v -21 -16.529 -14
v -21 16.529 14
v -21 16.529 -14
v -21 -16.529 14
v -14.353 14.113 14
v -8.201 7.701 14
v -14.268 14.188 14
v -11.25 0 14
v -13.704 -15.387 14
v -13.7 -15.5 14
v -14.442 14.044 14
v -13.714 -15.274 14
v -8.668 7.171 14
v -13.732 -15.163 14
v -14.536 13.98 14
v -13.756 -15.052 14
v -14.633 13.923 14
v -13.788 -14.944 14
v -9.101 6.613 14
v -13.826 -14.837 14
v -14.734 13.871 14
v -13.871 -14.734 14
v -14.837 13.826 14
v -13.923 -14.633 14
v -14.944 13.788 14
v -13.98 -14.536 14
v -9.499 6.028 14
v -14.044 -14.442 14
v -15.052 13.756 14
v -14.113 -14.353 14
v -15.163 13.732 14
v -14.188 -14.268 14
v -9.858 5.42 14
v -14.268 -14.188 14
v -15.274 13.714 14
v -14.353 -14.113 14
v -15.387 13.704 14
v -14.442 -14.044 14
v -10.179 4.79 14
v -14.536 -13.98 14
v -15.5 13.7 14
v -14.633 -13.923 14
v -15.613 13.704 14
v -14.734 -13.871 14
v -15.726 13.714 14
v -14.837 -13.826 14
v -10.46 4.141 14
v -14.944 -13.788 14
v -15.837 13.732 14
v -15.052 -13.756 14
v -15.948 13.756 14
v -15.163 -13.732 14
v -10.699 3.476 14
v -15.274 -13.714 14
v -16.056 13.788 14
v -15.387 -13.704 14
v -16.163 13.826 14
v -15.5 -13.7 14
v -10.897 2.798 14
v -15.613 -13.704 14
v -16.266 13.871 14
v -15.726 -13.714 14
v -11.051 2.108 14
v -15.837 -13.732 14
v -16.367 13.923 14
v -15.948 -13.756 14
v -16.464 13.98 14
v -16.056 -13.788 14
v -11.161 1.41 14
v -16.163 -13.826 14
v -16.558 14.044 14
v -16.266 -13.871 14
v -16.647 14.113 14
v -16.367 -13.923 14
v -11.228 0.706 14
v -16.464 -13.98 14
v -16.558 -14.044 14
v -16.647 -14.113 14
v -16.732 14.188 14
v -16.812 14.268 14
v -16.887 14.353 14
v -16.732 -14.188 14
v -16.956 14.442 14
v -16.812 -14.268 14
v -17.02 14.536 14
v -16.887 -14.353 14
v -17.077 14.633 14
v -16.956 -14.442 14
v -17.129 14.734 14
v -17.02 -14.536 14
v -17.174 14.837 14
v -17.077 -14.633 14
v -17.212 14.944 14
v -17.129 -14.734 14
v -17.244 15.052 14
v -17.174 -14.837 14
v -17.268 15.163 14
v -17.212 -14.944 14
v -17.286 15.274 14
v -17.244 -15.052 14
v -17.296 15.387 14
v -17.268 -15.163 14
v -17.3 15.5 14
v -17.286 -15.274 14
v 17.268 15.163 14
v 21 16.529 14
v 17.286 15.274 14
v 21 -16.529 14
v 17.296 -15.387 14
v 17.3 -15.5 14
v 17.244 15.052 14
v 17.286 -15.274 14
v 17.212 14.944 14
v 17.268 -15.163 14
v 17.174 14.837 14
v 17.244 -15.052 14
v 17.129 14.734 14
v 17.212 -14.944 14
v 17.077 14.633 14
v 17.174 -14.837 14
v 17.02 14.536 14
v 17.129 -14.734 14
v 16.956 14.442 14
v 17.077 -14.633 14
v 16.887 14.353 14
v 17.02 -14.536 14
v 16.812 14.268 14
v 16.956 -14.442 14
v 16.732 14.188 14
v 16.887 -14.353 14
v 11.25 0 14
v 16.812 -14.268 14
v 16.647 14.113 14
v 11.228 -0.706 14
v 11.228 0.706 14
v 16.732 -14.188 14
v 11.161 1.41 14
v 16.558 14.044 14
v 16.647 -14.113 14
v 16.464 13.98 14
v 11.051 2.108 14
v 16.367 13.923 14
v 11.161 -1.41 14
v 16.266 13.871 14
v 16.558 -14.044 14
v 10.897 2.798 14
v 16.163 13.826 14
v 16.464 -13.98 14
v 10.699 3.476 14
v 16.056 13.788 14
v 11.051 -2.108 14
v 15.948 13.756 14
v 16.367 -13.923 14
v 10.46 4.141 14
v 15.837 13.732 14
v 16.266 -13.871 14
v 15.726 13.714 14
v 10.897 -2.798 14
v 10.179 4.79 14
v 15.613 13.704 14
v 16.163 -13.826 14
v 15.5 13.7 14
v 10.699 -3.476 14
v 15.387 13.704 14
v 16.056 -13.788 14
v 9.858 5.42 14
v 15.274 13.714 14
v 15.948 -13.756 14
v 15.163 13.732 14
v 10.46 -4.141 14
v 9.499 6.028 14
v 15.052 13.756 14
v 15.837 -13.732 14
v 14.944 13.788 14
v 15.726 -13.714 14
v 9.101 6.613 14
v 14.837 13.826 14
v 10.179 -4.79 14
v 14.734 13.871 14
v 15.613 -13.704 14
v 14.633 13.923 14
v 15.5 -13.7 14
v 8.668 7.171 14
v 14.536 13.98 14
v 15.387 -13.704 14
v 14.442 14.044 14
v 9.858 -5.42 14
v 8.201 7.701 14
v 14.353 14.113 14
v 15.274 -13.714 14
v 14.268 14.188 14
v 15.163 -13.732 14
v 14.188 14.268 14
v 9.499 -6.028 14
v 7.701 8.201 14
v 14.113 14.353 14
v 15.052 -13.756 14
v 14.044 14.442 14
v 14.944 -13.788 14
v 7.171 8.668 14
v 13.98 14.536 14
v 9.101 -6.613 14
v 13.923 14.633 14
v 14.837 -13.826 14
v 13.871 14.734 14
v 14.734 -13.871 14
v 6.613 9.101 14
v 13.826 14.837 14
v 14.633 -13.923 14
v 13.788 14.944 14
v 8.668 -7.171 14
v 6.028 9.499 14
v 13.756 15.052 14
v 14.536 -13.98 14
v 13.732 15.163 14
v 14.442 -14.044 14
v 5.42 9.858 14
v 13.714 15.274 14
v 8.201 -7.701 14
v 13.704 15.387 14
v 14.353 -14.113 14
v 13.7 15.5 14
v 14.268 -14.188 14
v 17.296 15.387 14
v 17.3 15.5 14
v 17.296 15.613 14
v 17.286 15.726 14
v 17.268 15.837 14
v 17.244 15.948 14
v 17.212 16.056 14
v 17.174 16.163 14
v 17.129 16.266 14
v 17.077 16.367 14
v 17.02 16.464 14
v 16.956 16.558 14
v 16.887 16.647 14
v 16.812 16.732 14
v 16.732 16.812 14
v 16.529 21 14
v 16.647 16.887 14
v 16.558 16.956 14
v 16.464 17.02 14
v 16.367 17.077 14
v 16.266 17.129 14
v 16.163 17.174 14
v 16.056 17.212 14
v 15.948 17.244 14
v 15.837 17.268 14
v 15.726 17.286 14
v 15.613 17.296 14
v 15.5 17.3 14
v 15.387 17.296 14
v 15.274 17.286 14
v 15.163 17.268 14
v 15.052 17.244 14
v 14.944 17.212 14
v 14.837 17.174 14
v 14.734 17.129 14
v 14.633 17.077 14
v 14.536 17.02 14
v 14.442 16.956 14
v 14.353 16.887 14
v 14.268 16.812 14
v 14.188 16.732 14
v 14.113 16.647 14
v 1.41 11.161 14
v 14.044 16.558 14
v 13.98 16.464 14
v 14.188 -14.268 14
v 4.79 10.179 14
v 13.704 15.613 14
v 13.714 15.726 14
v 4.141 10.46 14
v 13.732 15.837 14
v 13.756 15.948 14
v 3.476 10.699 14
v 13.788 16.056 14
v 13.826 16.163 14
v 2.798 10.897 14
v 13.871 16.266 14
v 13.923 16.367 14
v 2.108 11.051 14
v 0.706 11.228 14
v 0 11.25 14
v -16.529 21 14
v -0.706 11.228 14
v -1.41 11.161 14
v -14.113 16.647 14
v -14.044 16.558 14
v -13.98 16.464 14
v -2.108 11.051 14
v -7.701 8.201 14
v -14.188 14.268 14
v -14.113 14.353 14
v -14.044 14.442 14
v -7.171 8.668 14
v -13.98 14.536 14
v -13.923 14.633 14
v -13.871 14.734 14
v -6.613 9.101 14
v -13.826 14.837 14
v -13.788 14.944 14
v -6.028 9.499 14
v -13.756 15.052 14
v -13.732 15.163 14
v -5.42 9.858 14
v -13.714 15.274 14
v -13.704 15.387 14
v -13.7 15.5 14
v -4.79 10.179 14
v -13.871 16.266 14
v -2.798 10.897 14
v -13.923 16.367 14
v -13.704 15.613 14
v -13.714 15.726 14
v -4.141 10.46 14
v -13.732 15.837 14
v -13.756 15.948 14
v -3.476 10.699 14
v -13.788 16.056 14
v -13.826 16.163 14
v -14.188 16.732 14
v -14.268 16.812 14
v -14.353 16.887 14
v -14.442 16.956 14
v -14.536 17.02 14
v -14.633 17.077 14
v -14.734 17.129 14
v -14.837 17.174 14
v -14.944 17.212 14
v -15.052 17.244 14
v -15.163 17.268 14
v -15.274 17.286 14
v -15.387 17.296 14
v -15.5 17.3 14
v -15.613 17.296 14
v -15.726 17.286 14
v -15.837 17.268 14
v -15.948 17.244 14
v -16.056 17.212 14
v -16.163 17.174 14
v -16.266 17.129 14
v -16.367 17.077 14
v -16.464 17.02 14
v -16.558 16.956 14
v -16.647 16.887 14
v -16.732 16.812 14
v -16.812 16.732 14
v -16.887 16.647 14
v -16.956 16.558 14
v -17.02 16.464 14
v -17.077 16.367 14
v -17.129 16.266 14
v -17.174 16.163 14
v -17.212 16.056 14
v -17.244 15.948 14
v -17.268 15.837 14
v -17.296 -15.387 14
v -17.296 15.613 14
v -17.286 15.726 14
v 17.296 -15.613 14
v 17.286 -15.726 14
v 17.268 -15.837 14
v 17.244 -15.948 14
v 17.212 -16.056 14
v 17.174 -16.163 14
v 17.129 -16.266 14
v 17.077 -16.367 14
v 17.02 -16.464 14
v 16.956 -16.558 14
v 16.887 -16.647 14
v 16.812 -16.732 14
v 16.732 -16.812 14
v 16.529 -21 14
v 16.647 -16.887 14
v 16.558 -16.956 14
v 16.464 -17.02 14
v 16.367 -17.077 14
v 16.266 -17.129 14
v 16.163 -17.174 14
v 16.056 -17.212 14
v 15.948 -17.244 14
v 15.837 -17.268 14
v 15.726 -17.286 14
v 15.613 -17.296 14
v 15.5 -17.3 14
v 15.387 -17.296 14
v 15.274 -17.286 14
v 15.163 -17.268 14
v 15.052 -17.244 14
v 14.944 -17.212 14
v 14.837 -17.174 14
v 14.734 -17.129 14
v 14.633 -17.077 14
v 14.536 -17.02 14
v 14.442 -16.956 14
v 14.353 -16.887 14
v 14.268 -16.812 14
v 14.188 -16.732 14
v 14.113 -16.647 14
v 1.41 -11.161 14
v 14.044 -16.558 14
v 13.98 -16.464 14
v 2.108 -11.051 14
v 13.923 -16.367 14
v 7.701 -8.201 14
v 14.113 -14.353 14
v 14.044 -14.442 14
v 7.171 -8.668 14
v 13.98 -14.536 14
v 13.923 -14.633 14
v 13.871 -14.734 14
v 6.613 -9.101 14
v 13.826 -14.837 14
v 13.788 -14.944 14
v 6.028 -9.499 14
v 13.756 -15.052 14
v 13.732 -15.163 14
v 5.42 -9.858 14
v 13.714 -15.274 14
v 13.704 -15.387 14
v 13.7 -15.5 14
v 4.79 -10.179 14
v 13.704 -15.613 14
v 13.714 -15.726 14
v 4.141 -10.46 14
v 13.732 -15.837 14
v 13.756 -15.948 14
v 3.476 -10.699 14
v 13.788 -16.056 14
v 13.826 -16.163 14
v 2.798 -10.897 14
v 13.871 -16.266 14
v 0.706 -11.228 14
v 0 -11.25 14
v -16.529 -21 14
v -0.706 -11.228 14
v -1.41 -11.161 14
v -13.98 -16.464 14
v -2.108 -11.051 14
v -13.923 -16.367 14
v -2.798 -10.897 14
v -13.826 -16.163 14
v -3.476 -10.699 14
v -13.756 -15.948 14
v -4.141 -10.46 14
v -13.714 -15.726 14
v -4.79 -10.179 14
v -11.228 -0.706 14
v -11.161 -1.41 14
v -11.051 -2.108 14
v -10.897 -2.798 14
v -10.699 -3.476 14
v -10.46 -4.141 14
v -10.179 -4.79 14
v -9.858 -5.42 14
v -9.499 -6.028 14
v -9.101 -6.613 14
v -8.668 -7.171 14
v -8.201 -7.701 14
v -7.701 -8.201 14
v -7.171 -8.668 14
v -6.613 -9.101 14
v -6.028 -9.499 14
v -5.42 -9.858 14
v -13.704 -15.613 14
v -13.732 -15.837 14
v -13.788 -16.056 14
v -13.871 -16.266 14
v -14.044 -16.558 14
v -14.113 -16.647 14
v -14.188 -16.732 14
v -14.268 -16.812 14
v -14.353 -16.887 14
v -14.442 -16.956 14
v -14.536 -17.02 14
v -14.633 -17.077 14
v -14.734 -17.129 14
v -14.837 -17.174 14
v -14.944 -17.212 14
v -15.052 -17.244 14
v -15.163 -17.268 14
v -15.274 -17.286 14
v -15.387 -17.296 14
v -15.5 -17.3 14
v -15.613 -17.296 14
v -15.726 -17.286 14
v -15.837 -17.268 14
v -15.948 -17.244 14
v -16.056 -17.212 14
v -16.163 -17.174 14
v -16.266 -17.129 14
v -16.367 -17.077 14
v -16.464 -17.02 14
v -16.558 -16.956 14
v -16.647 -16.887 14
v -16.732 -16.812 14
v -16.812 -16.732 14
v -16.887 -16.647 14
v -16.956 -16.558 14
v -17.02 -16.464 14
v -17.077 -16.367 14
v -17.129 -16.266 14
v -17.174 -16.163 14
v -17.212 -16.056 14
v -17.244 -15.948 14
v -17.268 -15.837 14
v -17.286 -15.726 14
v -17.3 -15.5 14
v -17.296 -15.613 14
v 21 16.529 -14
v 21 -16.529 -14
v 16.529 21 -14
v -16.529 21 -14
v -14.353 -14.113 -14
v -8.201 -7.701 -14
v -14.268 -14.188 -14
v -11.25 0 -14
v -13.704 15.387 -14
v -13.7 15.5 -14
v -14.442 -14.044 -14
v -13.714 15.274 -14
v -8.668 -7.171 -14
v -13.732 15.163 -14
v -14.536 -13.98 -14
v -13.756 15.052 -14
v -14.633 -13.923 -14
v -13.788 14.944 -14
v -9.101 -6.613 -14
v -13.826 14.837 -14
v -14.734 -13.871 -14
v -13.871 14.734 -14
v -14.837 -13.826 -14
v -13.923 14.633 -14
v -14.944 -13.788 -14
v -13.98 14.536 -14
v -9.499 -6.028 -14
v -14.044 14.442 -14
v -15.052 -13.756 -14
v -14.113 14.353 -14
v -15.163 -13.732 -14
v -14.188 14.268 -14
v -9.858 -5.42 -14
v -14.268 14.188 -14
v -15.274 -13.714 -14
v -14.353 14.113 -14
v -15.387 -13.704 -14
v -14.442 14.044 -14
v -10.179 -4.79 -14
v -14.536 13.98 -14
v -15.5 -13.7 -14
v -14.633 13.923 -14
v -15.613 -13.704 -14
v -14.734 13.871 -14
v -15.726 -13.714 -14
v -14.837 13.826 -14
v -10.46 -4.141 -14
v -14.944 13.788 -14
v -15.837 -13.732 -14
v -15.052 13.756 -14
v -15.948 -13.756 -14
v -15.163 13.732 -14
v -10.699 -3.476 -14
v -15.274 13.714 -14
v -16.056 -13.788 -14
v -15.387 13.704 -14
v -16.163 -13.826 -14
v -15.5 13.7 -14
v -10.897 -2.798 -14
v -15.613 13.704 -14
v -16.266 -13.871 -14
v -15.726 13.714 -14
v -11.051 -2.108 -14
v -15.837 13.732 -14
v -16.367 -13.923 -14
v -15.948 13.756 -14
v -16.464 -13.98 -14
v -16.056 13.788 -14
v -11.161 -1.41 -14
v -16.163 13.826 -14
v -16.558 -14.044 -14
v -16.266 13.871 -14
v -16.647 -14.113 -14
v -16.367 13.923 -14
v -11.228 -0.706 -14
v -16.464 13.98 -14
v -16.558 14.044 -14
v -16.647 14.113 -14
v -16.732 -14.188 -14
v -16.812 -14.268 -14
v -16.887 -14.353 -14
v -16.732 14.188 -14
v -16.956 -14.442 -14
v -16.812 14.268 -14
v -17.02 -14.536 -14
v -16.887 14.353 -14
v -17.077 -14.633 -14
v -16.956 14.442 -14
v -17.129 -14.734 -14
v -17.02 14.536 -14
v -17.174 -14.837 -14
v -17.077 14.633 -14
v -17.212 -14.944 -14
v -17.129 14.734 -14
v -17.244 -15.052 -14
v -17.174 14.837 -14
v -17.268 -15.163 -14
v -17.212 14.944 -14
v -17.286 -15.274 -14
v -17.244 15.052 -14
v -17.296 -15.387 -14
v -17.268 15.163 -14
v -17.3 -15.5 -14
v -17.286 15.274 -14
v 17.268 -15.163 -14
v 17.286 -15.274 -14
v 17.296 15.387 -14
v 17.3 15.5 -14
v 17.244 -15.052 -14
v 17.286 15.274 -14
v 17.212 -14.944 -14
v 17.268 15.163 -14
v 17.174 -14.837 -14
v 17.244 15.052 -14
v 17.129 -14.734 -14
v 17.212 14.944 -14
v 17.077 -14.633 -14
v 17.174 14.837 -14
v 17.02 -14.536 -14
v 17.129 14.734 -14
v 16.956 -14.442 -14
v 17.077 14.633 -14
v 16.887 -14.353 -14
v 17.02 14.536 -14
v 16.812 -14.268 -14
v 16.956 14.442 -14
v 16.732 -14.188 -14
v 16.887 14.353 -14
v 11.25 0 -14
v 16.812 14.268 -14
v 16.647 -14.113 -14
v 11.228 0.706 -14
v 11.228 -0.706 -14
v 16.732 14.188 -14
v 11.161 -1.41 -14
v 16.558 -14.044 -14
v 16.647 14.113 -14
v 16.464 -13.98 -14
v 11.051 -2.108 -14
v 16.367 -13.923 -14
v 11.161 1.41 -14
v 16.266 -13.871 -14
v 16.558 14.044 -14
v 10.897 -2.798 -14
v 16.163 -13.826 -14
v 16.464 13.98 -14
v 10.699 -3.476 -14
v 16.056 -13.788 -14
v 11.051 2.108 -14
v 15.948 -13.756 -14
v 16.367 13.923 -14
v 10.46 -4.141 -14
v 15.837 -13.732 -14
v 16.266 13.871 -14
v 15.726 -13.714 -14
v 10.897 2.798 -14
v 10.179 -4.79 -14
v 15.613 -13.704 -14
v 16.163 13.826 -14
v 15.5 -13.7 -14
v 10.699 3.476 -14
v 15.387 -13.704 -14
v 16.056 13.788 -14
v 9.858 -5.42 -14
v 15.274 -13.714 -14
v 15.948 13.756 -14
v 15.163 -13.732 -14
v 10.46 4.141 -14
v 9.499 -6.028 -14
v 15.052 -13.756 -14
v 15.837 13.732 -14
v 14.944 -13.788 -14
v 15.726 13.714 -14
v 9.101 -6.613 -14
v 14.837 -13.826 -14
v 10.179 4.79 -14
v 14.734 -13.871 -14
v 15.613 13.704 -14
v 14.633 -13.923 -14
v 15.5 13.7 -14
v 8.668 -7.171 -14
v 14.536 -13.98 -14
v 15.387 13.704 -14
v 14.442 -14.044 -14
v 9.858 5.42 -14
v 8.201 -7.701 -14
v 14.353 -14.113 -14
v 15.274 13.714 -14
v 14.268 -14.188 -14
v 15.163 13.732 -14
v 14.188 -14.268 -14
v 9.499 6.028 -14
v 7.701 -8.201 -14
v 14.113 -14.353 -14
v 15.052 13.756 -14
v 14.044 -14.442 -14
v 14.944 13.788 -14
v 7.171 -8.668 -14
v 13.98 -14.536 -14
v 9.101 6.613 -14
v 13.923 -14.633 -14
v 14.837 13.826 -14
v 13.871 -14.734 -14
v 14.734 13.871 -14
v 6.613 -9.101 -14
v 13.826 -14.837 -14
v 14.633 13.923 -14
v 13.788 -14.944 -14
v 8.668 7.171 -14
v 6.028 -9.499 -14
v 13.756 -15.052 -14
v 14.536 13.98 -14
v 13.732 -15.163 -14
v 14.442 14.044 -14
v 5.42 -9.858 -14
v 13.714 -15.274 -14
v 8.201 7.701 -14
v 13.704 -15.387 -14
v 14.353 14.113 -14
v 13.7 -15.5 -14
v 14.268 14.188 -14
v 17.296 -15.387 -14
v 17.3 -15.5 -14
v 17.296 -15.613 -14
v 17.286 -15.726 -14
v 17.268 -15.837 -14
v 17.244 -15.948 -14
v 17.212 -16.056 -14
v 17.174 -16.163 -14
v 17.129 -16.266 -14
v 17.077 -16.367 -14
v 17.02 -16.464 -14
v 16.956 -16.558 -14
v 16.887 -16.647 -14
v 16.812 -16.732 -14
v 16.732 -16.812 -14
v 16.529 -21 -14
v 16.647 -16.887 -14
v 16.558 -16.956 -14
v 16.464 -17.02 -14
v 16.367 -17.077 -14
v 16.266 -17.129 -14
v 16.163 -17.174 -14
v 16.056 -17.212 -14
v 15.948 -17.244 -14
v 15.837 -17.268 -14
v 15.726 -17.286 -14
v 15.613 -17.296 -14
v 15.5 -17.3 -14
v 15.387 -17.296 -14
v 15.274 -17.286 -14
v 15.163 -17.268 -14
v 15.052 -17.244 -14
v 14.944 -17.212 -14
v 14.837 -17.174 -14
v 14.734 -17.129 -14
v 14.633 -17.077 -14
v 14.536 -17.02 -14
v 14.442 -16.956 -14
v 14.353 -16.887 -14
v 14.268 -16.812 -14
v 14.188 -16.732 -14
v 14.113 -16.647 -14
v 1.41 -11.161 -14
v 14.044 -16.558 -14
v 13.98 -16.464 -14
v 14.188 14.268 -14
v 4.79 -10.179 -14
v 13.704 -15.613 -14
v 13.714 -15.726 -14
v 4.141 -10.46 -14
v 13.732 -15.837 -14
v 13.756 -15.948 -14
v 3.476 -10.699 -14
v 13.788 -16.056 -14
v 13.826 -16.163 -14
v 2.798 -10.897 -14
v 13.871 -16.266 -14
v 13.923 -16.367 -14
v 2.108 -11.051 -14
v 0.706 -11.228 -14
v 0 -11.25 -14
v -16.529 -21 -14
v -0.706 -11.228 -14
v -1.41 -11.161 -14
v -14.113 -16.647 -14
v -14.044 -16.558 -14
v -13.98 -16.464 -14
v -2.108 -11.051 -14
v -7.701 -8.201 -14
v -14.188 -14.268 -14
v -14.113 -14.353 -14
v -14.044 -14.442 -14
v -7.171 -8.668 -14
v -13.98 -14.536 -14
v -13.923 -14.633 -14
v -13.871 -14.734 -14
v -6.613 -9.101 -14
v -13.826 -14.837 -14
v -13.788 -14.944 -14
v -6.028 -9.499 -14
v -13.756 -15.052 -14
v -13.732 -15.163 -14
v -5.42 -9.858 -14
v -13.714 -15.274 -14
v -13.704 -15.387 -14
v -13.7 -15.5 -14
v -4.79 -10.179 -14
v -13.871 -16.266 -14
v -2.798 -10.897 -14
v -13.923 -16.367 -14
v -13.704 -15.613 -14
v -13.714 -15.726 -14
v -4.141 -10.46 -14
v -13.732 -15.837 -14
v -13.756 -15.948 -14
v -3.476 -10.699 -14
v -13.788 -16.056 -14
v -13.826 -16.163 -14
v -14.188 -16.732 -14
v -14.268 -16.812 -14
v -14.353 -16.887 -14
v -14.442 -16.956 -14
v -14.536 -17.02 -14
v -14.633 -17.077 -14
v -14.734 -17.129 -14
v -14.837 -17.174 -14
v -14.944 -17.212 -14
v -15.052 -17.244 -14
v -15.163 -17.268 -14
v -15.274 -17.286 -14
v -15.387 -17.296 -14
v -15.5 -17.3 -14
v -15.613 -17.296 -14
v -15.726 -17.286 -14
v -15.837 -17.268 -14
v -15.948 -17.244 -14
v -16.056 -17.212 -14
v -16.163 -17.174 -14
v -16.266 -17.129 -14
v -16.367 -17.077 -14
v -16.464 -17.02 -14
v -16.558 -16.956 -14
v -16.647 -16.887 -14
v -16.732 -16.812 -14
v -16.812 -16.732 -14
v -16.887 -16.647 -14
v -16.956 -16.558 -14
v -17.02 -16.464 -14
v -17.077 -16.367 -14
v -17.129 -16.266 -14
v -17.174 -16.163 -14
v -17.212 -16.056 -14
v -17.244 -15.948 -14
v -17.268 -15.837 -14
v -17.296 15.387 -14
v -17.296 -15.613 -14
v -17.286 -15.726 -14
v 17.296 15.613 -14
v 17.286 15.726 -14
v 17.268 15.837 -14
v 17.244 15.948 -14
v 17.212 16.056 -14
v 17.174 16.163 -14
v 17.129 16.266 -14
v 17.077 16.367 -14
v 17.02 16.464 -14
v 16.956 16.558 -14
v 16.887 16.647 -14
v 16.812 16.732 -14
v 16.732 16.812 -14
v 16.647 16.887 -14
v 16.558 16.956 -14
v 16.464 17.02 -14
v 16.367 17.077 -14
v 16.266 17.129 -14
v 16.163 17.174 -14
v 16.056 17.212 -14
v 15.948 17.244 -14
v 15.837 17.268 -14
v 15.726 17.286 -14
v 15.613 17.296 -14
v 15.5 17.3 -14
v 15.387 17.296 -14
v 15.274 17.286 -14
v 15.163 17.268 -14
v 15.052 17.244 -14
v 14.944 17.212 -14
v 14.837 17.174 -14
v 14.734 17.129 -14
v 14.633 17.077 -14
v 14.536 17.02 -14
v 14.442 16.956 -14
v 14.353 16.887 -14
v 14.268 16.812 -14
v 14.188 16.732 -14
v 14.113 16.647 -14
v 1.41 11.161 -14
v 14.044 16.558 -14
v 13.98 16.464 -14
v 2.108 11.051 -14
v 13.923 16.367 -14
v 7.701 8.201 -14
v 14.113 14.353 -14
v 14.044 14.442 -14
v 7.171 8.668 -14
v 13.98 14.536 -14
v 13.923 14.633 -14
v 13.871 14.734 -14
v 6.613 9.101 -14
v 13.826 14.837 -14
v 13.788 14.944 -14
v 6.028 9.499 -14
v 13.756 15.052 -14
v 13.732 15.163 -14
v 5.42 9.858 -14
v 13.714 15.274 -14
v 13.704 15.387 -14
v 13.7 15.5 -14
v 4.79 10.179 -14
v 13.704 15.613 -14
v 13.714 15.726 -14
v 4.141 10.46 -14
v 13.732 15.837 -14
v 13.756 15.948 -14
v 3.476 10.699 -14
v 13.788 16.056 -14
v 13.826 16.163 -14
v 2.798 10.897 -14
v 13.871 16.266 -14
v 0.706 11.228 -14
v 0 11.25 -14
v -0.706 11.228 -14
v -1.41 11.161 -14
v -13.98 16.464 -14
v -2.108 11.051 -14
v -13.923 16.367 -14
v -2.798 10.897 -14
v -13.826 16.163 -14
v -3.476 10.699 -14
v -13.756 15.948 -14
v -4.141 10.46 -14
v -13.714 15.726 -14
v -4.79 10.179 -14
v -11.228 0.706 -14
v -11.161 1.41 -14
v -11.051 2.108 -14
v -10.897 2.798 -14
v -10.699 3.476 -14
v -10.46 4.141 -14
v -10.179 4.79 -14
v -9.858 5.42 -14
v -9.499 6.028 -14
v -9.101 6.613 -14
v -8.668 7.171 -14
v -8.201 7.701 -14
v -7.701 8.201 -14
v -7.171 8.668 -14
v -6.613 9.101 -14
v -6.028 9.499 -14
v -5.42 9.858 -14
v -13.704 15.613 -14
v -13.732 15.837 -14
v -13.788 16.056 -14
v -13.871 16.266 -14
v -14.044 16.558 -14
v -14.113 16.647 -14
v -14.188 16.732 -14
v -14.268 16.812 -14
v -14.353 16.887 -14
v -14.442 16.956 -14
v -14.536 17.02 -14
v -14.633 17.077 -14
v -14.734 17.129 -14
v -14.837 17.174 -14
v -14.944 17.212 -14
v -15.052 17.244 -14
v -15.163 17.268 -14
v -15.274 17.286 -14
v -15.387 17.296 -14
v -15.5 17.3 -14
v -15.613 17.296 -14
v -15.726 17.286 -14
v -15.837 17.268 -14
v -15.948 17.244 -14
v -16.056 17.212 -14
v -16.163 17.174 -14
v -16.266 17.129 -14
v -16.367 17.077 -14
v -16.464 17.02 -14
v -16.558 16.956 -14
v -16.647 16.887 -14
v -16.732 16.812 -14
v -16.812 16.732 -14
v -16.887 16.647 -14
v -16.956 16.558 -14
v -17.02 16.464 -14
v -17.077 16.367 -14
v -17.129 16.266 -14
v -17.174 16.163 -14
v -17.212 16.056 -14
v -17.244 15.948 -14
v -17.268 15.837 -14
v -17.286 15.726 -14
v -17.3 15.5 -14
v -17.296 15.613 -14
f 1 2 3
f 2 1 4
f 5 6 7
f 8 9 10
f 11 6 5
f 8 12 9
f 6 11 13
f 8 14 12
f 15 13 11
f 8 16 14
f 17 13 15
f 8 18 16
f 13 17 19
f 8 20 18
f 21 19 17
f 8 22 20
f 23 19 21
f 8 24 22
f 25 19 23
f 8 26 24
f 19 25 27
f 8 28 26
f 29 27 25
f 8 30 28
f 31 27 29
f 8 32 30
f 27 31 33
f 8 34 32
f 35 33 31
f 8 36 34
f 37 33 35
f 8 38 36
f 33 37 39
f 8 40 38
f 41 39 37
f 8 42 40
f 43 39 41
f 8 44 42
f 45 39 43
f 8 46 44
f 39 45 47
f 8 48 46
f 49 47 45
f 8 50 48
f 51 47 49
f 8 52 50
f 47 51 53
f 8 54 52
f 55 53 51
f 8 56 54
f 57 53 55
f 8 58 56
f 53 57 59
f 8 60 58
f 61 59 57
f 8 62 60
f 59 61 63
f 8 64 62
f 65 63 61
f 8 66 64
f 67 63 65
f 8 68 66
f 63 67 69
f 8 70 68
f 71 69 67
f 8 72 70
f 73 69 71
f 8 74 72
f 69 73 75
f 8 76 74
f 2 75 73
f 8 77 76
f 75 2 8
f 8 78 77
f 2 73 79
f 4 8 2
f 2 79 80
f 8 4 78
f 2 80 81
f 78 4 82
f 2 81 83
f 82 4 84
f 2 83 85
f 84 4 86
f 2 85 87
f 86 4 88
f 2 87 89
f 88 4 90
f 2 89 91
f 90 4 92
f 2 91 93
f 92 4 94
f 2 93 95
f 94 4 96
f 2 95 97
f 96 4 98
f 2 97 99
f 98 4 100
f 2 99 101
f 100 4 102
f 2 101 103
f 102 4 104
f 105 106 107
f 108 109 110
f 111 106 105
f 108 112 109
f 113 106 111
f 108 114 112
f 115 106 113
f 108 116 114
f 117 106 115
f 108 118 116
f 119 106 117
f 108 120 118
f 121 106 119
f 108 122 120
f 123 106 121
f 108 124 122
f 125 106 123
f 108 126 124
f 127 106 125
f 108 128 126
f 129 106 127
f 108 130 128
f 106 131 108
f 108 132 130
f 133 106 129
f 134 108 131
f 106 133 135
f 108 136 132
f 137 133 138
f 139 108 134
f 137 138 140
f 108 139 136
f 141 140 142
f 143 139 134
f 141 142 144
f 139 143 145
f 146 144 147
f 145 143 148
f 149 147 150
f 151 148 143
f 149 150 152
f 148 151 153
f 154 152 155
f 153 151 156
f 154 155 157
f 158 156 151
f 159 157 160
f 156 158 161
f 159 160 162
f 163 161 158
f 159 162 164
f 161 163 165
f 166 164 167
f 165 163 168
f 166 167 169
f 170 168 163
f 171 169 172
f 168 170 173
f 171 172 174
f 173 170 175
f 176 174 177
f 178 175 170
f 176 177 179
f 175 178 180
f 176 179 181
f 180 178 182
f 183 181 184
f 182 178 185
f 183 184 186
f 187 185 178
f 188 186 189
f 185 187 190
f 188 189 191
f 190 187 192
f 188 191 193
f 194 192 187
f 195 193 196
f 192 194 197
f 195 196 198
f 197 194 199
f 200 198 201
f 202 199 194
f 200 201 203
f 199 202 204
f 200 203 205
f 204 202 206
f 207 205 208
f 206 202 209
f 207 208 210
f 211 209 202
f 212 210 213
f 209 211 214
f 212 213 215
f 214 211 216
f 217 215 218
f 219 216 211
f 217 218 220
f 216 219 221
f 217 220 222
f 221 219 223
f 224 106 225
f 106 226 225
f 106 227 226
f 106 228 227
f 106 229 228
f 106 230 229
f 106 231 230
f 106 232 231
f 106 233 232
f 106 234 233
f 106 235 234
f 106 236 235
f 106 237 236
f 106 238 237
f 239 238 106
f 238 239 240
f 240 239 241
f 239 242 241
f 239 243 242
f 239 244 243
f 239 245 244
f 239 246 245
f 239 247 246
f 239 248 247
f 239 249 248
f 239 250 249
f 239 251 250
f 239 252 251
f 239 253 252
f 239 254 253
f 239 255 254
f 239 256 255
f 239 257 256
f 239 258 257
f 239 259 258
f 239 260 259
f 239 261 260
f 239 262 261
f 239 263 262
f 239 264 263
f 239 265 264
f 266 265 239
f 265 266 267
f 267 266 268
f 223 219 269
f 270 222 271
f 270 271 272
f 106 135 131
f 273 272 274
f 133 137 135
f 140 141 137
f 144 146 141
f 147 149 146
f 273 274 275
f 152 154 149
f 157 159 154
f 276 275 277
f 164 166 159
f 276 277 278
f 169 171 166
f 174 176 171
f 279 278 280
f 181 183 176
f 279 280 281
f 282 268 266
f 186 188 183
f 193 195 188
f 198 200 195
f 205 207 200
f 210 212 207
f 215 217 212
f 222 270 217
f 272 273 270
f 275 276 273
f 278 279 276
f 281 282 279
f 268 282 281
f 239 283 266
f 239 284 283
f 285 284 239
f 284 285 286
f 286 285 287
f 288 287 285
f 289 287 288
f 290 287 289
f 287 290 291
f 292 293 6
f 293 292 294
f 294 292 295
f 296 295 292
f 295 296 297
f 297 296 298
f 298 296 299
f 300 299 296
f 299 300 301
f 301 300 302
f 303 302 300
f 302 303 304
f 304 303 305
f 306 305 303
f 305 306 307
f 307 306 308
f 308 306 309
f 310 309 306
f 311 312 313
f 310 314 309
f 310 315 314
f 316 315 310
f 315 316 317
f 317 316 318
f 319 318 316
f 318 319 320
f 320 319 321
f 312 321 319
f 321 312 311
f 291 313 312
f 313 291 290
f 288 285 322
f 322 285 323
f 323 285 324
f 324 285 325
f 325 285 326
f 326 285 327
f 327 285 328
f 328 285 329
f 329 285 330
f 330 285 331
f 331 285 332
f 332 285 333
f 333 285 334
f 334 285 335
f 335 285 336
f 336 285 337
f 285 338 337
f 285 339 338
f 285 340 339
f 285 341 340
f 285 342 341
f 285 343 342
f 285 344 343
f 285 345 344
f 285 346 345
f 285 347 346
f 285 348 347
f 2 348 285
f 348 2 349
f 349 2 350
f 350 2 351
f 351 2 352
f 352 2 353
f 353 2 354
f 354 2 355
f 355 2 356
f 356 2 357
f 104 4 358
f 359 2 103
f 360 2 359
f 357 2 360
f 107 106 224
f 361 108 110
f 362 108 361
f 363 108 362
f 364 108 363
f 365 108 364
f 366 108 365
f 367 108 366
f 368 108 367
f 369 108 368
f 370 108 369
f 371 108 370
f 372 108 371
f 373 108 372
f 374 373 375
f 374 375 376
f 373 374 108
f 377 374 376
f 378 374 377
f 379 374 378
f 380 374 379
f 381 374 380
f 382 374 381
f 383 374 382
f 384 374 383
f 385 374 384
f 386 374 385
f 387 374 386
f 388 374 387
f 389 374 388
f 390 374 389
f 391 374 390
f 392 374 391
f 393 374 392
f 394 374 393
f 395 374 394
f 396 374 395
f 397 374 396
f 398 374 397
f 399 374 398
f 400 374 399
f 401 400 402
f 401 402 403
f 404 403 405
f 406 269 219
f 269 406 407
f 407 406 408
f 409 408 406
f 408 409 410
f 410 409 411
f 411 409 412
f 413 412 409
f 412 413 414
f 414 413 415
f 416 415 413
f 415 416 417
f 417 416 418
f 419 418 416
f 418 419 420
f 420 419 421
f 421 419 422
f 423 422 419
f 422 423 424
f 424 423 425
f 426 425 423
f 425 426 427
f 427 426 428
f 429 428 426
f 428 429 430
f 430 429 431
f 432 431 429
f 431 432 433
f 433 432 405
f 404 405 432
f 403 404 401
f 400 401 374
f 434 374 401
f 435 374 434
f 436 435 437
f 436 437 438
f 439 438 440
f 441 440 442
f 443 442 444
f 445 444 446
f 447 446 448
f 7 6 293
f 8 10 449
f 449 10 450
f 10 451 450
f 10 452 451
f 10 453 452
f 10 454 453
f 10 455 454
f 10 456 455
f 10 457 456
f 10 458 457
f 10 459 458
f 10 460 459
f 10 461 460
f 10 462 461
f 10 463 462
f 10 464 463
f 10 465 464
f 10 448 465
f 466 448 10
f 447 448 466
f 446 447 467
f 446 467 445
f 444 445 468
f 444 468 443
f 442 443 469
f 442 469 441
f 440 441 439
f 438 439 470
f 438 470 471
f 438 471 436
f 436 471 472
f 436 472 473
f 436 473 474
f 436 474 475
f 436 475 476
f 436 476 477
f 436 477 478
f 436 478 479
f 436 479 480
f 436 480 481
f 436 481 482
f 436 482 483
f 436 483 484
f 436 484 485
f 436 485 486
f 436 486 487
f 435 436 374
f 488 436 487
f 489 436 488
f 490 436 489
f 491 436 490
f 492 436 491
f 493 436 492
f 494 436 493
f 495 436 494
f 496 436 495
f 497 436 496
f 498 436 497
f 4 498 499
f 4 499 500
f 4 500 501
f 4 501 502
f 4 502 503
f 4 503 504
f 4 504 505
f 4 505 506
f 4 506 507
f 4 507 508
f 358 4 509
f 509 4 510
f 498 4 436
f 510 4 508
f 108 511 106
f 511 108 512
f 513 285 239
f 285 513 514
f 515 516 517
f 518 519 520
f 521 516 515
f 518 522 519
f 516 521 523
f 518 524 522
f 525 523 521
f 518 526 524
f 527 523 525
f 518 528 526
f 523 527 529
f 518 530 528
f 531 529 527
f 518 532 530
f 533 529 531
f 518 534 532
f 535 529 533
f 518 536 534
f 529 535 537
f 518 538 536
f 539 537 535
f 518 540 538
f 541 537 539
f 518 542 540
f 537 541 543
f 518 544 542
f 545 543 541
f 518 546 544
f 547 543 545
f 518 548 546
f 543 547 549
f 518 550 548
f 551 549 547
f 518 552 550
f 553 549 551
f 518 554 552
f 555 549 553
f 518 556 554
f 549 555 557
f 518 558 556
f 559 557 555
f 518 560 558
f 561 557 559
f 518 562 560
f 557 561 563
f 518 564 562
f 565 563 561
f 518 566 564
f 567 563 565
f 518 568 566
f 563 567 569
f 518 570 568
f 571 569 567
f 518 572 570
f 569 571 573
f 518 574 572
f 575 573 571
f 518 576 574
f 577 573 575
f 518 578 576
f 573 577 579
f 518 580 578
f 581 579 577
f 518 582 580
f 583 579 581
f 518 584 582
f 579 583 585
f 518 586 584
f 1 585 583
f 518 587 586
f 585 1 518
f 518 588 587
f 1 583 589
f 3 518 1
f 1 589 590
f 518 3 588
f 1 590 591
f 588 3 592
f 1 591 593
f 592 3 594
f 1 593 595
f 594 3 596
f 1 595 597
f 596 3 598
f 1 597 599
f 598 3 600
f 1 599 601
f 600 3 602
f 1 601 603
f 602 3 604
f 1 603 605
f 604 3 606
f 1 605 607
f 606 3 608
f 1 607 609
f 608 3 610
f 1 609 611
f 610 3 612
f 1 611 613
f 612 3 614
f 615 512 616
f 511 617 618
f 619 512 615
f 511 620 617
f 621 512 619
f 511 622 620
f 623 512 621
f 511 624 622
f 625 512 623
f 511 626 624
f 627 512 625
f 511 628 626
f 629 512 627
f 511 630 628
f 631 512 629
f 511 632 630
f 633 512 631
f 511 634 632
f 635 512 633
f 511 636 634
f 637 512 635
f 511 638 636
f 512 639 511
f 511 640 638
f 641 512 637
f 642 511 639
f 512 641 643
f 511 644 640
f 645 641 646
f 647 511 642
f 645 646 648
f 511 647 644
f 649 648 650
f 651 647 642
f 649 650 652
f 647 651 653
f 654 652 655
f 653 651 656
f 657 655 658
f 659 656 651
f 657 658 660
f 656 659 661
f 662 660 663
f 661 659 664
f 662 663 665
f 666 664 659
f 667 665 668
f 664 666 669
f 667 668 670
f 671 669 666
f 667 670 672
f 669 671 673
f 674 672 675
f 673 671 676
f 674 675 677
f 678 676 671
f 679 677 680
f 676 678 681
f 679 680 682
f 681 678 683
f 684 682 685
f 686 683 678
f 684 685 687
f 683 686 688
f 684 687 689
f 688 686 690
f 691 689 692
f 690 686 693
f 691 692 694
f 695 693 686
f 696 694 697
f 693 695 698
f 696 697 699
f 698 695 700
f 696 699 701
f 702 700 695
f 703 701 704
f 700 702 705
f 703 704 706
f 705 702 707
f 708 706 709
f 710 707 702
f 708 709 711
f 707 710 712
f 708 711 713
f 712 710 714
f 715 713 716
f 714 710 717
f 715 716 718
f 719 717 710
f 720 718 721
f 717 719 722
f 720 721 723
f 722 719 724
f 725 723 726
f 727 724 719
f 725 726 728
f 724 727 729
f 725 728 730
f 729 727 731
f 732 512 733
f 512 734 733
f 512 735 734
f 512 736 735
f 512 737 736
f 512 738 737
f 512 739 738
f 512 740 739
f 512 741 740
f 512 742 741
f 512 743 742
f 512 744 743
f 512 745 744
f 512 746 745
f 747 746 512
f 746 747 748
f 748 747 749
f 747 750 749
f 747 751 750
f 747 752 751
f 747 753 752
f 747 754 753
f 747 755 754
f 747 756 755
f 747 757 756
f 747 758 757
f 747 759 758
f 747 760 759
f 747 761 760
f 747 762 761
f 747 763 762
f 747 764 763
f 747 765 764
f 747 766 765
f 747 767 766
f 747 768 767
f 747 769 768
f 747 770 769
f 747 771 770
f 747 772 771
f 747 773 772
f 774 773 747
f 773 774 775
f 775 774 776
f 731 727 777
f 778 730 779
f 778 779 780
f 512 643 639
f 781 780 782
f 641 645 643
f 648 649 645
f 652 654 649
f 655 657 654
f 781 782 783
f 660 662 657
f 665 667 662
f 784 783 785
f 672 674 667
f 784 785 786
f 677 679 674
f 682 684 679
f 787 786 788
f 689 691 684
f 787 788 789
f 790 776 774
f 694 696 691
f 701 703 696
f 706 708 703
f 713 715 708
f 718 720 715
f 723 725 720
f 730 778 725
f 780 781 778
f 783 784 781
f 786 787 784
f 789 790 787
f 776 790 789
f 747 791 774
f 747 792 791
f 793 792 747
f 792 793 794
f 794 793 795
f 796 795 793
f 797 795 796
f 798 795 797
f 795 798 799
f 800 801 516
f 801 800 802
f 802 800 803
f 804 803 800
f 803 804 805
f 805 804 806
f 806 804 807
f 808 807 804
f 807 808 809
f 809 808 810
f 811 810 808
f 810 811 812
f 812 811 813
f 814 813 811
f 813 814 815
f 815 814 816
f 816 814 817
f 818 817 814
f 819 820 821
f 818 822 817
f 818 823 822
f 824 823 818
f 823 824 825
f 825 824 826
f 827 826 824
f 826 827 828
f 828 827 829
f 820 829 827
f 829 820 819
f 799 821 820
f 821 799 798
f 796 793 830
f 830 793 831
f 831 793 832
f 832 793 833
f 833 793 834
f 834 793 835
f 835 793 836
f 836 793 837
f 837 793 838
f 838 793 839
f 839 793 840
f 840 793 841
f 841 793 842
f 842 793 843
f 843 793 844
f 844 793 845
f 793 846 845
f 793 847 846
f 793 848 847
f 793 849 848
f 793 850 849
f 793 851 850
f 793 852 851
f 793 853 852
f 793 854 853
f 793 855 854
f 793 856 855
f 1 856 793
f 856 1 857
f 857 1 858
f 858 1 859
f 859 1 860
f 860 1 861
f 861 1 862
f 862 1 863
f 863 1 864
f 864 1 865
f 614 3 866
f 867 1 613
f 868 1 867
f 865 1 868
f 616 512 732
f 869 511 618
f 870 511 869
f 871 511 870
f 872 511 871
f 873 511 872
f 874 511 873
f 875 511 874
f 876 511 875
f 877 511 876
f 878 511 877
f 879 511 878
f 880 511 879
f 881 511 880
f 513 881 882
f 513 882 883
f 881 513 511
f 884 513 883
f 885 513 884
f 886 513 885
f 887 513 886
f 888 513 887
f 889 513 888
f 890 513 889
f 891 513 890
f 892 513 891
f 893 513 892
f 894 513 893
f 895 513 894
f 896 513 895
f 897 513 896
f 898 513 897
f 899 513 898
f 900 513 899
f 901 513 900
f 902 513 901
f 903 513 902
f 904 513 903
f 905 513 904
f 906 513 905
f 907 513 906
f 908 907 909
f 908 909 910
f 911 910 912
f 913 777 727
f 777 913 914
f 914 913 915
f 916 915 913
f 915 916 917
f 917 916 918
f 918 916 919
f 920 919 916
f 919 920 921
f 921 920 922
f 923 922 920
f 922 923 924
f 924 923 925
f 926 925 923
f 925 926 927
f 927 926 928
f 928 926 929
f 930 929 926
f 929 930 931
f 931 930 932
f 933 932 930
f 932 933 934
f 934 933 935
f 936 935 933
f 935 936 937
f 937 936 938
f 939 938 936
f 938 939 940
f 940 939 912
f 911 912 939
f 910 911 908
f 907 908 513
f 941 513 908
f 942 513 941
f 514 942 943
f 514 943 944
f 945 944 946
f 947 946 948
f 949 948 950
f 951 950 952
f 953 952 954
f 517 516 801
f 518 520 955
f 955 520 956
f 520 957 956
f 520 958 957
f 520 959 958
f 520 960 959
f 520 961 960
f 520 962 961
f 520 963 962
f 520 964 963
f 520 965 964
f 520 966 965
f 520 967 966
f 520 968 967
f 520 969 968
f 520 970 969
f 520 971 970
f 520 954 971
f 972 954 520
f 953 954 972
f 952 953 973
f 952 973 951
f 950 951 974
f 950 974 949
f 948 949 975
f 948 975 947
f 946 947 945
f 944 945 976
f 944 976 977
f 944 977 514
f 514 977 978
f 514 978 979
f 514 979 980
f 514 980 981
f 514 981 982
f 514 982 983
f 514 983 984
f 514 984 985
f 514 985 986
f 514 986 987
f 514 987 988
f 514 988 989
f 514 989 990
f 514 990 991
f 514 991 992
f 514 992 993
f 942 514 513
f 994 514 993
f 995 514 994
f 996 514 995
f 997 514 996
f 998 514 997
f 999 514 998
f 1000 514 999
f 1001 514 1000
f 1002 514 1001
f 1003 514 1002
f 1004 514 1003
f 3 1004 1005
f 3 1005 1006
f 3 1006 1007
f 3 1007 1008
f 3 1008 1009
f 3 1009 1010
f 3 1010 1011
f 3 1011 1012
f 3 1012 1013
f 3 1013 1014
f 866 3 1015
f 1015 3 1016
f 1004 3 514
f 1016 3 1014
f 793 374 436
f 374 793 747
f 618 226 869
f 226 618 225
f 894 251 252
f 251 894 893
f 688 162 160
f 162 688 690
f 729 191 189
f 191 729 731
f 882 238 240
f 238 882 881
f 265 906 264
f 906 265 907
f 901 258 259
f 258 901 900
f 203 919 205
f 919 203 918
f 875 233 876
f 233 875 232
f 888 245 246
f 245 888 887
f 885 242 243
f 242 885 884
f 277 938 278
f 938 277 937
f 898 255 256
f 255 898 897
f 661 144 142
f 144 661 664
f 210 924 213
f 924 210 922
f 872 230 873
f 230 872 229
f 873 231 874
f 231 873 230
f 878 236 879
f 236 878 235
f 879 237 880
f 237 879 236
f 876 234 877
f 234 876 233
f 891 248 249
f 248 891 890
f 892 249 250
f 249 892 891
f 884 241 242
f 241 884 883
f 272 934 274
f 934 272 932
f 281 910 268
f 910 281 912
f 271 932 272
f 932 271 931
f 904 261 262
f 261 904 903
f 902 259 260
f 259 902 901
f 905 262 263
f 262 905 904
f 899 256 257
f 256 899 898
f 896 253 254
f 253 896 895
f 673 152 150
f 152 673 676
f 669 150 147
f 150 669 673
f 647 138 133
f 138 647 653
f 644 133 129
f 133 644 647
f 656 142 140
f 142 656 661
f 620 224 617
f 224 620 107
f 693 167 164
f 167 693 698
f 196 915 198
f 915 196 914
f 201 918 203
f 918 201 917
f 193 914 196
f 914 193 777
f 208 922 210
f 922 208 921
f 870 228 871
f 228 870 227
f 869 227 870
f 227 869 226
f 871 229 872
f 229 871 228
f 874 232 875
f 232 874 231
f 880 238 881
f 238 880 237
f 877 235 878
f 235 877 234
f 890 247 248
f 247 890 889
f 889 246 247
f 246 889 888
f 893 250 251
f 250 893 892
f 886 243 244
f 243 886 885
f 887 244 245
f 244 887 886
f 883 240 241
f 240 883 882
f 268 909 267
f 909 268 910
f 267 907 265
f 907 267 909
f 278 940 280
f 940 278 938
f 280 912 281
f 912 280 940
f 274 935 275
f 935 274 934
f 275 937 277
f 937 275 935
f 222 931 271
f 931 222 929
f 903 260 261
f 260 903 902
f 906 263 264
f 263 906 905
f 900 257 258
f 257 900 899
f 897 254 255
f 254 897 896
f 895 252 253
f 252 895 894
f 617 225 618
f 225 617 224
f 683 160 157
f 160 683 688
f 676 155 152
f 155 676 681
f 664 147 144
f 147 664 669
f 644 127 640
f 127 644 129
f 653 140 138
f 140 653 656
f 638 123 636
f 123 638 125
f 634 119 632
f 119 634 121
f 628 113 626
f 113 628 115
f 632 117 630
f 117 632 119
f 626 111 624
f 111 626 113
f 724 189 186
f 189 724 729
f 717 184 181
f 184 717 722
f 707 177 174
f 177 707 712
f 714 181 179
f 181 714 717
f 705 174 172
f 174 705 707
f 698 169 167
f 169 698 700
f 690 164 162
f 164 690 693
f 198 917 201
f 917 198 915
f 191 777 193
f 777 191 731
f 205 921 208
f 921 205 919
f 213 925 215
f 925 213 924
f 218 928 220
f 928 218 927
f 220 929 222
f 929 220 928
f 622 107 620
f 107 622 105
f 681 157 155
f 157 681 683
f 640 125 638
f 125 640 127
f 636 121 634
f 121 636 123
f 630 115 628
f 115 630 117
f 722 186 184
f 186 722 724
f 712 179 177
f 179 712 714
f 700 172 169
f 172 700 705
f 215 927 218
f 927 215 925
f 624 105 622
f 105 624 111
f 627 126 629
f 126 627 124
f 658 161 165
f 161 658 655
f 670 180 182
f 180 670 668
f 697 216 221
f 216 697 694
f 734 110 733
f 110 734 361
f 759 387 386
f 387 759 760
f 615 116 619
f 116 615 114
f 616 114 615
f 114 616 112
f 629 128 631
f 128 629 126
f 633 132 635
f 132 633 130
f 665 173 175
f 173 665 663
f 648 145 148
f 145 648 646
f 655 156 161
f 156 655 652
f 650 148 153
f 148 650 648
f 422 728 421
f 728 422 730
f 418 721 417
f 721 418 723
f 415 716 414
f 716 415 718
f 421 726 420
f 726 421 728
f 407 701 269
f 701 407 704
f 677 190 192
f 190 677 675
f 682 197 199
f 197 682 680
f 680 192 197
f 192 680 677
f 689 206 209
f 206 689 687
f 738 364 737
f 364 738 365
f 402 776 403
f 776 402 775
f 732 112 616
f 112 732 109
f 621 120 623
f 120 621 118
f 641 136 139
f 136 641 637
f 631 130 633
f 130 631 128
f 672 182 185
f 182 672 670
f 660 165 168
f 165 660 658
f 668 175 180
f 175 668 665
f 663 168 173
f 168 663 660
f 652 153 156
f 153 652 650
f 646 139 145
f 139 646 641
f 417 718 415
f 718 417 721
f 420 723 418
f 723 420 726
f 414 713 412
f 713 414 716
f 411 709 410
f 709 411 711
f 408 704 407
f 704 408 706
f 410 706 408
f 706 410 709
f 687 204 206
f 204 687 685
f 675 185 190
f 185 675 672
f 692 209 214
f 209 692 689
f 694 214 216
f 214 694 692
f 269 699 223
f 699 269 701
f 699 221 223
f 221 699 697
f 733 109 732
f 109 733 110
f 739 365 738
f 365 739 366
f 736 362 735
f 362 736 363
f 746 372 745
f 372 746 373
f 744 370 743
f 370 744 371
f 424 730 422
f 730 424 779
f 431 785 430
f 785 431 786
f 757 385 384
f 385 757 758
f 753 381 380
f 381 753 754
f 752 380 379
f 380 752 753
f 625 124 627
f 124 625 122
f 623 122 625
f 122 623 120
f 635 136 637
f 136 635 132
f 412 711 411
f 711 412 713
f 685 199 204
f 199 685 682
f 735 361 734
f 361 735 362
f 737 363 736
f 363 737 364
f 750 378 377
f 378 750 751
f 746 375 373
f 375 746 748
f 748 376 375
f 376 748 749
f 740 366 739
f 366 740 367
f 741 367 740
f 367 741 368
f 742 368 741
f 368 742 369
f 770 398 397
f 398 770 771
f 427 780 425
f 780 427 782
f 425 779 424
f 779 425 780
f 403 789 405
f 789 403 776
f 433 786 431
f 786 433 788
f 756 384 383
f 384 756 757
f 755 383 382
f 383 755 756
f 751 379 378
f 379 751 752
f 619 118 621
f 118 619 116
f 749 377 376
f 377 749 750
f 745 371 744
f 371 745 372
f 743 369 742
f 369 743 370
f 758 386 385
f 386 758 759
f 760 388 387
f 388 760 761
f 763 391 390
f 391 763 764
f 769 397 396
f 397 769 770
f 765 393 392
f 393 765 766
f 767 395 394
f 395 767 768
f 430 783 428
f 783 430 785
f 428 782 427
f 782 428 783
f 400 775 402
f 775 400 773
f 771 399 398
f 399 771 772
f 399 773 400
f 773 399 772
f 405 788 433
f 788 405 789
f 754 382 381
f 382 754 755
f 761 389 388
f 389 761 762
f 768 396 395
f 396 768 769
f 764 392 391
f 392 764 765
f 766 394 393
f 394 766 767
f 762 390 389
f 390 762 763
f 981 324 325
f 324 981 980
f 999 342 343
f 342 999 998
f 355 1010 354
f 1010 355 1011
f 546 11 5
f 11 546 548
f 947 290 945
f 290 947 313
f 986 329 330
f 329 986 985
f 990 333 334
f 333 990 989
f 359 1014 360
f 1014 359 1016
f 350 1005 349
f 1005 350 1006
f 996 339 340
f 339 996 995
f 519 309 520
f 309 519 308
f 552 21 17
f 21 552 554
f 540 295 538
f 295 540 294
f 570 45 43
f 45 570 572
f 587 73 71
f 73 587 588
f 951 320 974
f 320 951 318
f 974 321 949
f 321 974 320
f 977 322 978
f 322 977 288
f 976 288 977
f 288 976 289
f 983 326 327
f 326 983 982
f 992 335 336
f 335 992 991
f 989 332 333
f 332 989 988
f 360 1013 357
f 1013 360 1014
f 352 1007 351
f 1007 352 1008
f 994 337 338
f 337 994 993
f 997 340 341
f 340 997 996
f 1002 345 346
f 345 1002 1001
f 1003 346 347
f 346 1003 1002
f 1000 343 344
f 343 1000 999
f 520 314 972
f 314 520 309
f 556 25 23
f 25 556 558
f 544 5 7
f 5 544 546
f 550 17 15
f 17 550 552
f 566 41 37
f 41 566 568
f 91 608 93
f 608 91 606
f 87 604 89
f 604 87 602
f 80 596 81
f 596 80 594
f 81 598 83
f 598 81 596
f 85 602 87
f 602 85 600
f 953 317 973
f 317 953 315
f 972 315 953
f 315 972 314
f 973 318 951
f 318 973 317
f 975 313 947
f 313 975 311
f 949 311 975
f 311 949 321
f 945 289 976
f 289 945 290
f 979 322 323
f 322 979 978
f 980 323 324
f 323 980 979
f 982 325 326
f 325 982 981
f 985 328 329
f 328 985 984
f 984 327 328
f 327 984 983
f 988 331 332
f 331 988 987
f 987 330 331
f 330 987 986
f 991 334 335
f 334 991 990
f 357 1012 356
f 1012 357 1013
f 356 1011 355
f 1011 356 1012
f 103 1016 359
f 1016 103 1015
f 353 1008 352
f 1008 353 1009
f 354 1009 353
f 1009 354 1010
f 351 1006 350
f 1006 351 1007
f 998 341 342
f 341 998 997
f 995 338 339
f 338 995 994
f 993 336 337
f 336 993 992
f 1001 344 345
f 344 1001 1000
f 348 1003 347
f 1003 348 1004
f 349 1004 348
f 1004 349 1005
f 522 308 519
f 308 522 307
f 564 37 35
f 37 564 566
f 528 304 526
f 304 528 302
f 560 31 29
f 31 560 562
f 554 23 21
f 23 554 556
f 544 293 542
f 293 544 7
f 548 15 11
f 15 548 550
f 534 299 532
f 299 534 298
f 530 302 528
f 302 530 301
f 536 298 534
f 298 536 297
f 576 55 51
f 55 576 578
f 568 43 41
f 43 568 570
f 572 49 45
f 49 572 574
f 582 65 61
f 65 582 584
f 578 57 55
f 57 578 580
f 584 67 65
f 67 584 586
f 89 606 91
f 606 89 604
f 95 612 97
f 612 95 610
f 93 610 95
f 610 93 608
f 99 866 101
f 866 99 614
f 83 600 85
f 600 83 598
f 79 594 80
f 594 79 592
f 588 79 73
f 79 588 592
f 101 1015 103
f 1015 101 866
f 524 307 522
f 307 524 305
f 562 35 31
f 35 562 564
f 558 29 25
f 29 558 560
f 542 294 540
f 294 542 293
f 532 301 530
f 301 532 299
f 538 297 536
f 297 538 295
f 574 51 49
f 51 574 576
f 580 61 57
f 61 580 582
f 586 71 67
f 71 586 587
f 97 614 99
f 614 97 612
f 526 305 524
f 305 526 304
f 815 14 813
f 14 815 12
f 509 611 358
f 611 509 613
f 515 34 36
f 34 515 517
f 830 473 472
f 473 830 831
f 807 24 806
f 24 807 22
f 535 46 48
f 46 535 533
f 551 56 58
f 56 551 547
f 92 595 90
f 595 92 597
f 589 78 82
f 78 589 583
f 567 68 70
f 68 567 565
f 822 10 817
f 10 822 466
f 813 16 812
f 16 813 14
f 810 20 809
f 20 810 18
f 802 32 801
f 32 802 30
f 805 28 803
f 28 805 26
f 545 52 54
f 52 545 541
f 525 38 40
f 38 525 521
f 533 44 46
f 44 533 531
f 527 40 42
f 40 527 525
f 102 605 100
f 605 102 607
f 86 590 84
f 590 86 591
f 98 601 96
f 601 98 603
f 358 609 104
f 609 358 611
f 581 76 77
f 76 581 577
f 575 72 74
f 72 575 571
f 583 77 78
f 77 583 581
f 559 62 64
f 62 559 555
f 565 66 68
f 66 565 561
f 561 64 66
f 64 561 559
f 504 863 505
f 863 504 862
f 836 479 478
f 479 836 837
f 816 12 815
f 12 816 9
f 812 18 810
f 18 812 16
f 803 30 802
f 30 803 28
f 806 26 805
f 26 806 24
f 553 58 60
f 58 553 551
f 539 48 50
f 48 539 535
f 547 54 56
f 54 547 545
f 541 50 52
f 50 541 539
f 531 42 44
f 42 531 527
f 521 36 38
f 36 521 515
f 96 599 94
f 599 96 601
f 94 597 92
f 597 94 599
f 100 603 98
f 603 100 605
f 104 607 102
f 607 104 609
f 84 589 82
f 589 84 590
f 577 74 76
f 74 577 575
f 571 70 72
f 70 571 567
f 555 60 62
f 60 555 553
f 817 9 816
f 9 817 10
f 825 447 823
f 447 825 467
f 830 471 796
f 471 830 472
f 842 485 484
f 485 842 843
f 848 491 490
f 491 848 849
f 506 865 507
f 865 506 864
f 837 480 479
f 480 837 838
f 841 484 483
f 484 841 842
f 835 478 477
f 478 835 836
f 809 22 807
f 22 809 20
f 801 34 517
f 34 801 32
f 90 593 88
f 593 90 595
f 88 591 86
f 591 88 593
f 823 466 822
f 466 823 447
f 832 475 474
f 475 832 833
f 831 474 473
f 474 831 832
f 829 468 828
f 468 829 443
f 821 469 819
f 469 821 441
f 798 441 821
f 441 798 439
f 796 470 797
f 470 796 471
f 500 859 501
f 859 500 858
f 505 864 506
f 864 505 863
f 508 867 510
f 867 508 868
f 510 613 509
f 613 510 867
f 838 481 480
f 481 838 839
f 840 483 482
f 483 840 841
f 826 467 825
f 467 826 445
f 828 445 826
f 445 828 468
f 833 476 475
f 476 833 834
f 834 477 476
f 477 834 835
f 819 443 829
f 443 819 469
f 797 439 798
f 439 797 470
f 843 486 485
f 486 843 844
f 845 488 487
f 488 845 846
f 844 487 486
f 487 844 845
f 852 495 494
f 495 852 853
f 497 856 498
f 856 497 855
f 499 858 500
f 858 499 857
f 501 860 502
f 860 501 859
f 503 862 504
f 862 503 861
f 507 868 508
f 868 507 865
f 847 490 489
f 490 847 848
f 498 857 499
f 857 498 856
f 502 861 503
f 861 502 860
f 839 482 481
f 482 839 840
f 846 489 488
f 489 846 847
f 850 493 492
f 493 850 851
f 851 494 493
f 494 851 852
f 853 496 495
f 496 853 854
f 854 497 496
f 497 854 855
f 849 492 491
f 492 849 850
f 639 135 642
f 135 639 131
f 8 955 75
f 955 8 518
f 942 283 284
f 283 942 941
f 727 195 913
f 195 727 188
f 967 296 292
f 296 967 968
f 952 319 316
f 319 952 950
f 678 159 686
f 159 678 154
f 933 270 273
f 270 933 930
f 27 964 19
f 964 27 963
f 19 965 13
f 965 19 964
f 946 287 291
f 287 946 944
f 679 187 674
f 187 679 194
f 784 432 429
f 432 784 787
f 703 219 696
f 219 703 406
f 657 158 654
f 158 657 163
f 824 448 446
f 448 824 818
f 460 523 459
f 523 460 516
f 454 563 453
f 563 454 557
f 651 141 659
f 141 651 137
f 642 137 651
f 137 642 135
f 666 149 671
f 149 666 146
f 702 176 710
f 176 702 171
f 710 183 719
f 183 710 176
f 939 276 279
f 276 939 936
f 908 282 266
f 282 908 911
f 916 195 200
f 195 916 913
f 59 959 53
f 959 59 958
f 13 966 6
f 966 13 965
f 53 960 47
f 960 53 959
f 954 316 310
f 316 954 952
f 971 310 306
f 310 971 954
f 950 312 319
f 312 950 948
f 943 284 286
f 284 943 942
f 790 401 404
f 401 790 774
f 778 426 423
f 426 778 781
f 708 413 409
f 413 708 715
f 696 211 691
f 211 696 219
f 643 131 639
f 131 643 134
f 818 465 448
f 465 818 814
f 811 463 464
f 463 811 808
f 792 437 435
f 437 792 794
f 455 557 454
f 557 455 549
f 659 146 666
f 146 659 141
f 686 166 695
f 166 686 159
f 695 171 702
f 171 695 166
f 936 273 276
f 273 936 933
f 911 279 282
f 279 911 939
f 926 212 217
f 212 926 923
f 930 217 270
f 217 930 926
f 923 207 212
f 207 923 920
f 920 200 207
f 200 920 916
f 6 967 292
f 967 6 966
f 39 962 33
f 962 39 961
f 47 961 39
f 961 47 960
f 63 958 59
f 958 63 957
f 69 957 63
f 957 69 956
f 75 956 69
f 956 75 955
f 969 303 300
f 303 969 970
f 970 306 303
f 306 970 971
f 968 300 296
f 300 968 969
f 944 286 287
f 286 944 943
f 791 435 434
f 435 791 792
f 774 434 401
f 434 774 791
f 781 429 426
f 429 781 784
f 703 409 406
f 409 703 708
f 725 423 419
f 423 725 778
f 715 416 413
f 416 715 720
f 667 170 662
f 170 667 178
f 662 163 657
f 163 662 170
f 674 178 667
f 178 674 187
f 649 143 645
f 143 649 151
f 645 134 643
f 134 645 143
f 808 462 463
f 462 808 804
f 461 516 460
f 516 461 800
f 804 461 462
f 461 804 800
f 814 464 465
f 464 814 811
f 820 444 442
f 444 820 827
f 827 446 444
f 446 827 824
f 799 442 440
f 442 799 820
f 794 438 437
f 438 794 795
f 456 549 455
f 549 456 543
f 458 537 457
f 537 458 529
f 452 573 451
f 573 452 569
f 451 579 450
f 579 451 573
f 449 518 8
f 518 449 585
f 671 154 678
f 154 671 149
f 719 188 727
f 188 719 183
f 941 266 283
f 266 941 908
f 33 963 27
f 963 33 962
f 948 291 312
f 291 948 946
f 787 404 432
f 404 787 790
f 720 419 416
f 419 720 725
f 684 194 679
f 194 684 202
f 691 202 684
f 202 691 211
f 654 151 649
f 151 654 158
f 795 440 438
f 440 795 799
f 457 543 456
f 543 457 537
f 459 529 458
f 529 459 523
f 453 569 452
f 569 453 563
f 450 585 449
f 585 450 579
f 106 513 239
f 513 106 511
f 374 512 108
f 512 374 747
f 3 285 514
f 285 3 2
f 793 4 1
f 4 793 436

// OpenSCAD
h=28;
d_in=22.5;

w=42;

hole_r=1.8;

hole_w=31;


d_r = 22.3;
$fn=100;




difference(){
    cube(size=[w,w,h], center=true);
    translate([hole_w/2,hole_w/2,-1])cylinder(r=hole_r, h=h+53, center=true);
    translate([hole_w/2,-hole_w/2,-1])cylinder(r=hole_r, h=h+53, center=true);
    translate([-hole_w/2,hole_w/2,-1])cylinder(r=hole_r, h=h+53, center=true);
    translate([-hole_w/2,-hole_w/2,-1])cylinder(r=hole_r, h=h+53, center=true);
    translate([0,0,-1])cylinder(r=d_in/2, h=h+3, center=true);
    translate([d_r,d_r,0])rotate([0,0,45])cube(size=[10,100,100], center=true);
    translate([d_r,-d_r,0])rotate([0,0,-45])cube(size=[10,100,100], center=true);
    translate([-d_r,d_r,0])rotate([0,0,135])cube(size=[10,100,100], center=true);
    translate([-d_r,-d_r,0])rotate([0,0,-135])cube(size=[10,100,100], center=true);
    }
 
    
